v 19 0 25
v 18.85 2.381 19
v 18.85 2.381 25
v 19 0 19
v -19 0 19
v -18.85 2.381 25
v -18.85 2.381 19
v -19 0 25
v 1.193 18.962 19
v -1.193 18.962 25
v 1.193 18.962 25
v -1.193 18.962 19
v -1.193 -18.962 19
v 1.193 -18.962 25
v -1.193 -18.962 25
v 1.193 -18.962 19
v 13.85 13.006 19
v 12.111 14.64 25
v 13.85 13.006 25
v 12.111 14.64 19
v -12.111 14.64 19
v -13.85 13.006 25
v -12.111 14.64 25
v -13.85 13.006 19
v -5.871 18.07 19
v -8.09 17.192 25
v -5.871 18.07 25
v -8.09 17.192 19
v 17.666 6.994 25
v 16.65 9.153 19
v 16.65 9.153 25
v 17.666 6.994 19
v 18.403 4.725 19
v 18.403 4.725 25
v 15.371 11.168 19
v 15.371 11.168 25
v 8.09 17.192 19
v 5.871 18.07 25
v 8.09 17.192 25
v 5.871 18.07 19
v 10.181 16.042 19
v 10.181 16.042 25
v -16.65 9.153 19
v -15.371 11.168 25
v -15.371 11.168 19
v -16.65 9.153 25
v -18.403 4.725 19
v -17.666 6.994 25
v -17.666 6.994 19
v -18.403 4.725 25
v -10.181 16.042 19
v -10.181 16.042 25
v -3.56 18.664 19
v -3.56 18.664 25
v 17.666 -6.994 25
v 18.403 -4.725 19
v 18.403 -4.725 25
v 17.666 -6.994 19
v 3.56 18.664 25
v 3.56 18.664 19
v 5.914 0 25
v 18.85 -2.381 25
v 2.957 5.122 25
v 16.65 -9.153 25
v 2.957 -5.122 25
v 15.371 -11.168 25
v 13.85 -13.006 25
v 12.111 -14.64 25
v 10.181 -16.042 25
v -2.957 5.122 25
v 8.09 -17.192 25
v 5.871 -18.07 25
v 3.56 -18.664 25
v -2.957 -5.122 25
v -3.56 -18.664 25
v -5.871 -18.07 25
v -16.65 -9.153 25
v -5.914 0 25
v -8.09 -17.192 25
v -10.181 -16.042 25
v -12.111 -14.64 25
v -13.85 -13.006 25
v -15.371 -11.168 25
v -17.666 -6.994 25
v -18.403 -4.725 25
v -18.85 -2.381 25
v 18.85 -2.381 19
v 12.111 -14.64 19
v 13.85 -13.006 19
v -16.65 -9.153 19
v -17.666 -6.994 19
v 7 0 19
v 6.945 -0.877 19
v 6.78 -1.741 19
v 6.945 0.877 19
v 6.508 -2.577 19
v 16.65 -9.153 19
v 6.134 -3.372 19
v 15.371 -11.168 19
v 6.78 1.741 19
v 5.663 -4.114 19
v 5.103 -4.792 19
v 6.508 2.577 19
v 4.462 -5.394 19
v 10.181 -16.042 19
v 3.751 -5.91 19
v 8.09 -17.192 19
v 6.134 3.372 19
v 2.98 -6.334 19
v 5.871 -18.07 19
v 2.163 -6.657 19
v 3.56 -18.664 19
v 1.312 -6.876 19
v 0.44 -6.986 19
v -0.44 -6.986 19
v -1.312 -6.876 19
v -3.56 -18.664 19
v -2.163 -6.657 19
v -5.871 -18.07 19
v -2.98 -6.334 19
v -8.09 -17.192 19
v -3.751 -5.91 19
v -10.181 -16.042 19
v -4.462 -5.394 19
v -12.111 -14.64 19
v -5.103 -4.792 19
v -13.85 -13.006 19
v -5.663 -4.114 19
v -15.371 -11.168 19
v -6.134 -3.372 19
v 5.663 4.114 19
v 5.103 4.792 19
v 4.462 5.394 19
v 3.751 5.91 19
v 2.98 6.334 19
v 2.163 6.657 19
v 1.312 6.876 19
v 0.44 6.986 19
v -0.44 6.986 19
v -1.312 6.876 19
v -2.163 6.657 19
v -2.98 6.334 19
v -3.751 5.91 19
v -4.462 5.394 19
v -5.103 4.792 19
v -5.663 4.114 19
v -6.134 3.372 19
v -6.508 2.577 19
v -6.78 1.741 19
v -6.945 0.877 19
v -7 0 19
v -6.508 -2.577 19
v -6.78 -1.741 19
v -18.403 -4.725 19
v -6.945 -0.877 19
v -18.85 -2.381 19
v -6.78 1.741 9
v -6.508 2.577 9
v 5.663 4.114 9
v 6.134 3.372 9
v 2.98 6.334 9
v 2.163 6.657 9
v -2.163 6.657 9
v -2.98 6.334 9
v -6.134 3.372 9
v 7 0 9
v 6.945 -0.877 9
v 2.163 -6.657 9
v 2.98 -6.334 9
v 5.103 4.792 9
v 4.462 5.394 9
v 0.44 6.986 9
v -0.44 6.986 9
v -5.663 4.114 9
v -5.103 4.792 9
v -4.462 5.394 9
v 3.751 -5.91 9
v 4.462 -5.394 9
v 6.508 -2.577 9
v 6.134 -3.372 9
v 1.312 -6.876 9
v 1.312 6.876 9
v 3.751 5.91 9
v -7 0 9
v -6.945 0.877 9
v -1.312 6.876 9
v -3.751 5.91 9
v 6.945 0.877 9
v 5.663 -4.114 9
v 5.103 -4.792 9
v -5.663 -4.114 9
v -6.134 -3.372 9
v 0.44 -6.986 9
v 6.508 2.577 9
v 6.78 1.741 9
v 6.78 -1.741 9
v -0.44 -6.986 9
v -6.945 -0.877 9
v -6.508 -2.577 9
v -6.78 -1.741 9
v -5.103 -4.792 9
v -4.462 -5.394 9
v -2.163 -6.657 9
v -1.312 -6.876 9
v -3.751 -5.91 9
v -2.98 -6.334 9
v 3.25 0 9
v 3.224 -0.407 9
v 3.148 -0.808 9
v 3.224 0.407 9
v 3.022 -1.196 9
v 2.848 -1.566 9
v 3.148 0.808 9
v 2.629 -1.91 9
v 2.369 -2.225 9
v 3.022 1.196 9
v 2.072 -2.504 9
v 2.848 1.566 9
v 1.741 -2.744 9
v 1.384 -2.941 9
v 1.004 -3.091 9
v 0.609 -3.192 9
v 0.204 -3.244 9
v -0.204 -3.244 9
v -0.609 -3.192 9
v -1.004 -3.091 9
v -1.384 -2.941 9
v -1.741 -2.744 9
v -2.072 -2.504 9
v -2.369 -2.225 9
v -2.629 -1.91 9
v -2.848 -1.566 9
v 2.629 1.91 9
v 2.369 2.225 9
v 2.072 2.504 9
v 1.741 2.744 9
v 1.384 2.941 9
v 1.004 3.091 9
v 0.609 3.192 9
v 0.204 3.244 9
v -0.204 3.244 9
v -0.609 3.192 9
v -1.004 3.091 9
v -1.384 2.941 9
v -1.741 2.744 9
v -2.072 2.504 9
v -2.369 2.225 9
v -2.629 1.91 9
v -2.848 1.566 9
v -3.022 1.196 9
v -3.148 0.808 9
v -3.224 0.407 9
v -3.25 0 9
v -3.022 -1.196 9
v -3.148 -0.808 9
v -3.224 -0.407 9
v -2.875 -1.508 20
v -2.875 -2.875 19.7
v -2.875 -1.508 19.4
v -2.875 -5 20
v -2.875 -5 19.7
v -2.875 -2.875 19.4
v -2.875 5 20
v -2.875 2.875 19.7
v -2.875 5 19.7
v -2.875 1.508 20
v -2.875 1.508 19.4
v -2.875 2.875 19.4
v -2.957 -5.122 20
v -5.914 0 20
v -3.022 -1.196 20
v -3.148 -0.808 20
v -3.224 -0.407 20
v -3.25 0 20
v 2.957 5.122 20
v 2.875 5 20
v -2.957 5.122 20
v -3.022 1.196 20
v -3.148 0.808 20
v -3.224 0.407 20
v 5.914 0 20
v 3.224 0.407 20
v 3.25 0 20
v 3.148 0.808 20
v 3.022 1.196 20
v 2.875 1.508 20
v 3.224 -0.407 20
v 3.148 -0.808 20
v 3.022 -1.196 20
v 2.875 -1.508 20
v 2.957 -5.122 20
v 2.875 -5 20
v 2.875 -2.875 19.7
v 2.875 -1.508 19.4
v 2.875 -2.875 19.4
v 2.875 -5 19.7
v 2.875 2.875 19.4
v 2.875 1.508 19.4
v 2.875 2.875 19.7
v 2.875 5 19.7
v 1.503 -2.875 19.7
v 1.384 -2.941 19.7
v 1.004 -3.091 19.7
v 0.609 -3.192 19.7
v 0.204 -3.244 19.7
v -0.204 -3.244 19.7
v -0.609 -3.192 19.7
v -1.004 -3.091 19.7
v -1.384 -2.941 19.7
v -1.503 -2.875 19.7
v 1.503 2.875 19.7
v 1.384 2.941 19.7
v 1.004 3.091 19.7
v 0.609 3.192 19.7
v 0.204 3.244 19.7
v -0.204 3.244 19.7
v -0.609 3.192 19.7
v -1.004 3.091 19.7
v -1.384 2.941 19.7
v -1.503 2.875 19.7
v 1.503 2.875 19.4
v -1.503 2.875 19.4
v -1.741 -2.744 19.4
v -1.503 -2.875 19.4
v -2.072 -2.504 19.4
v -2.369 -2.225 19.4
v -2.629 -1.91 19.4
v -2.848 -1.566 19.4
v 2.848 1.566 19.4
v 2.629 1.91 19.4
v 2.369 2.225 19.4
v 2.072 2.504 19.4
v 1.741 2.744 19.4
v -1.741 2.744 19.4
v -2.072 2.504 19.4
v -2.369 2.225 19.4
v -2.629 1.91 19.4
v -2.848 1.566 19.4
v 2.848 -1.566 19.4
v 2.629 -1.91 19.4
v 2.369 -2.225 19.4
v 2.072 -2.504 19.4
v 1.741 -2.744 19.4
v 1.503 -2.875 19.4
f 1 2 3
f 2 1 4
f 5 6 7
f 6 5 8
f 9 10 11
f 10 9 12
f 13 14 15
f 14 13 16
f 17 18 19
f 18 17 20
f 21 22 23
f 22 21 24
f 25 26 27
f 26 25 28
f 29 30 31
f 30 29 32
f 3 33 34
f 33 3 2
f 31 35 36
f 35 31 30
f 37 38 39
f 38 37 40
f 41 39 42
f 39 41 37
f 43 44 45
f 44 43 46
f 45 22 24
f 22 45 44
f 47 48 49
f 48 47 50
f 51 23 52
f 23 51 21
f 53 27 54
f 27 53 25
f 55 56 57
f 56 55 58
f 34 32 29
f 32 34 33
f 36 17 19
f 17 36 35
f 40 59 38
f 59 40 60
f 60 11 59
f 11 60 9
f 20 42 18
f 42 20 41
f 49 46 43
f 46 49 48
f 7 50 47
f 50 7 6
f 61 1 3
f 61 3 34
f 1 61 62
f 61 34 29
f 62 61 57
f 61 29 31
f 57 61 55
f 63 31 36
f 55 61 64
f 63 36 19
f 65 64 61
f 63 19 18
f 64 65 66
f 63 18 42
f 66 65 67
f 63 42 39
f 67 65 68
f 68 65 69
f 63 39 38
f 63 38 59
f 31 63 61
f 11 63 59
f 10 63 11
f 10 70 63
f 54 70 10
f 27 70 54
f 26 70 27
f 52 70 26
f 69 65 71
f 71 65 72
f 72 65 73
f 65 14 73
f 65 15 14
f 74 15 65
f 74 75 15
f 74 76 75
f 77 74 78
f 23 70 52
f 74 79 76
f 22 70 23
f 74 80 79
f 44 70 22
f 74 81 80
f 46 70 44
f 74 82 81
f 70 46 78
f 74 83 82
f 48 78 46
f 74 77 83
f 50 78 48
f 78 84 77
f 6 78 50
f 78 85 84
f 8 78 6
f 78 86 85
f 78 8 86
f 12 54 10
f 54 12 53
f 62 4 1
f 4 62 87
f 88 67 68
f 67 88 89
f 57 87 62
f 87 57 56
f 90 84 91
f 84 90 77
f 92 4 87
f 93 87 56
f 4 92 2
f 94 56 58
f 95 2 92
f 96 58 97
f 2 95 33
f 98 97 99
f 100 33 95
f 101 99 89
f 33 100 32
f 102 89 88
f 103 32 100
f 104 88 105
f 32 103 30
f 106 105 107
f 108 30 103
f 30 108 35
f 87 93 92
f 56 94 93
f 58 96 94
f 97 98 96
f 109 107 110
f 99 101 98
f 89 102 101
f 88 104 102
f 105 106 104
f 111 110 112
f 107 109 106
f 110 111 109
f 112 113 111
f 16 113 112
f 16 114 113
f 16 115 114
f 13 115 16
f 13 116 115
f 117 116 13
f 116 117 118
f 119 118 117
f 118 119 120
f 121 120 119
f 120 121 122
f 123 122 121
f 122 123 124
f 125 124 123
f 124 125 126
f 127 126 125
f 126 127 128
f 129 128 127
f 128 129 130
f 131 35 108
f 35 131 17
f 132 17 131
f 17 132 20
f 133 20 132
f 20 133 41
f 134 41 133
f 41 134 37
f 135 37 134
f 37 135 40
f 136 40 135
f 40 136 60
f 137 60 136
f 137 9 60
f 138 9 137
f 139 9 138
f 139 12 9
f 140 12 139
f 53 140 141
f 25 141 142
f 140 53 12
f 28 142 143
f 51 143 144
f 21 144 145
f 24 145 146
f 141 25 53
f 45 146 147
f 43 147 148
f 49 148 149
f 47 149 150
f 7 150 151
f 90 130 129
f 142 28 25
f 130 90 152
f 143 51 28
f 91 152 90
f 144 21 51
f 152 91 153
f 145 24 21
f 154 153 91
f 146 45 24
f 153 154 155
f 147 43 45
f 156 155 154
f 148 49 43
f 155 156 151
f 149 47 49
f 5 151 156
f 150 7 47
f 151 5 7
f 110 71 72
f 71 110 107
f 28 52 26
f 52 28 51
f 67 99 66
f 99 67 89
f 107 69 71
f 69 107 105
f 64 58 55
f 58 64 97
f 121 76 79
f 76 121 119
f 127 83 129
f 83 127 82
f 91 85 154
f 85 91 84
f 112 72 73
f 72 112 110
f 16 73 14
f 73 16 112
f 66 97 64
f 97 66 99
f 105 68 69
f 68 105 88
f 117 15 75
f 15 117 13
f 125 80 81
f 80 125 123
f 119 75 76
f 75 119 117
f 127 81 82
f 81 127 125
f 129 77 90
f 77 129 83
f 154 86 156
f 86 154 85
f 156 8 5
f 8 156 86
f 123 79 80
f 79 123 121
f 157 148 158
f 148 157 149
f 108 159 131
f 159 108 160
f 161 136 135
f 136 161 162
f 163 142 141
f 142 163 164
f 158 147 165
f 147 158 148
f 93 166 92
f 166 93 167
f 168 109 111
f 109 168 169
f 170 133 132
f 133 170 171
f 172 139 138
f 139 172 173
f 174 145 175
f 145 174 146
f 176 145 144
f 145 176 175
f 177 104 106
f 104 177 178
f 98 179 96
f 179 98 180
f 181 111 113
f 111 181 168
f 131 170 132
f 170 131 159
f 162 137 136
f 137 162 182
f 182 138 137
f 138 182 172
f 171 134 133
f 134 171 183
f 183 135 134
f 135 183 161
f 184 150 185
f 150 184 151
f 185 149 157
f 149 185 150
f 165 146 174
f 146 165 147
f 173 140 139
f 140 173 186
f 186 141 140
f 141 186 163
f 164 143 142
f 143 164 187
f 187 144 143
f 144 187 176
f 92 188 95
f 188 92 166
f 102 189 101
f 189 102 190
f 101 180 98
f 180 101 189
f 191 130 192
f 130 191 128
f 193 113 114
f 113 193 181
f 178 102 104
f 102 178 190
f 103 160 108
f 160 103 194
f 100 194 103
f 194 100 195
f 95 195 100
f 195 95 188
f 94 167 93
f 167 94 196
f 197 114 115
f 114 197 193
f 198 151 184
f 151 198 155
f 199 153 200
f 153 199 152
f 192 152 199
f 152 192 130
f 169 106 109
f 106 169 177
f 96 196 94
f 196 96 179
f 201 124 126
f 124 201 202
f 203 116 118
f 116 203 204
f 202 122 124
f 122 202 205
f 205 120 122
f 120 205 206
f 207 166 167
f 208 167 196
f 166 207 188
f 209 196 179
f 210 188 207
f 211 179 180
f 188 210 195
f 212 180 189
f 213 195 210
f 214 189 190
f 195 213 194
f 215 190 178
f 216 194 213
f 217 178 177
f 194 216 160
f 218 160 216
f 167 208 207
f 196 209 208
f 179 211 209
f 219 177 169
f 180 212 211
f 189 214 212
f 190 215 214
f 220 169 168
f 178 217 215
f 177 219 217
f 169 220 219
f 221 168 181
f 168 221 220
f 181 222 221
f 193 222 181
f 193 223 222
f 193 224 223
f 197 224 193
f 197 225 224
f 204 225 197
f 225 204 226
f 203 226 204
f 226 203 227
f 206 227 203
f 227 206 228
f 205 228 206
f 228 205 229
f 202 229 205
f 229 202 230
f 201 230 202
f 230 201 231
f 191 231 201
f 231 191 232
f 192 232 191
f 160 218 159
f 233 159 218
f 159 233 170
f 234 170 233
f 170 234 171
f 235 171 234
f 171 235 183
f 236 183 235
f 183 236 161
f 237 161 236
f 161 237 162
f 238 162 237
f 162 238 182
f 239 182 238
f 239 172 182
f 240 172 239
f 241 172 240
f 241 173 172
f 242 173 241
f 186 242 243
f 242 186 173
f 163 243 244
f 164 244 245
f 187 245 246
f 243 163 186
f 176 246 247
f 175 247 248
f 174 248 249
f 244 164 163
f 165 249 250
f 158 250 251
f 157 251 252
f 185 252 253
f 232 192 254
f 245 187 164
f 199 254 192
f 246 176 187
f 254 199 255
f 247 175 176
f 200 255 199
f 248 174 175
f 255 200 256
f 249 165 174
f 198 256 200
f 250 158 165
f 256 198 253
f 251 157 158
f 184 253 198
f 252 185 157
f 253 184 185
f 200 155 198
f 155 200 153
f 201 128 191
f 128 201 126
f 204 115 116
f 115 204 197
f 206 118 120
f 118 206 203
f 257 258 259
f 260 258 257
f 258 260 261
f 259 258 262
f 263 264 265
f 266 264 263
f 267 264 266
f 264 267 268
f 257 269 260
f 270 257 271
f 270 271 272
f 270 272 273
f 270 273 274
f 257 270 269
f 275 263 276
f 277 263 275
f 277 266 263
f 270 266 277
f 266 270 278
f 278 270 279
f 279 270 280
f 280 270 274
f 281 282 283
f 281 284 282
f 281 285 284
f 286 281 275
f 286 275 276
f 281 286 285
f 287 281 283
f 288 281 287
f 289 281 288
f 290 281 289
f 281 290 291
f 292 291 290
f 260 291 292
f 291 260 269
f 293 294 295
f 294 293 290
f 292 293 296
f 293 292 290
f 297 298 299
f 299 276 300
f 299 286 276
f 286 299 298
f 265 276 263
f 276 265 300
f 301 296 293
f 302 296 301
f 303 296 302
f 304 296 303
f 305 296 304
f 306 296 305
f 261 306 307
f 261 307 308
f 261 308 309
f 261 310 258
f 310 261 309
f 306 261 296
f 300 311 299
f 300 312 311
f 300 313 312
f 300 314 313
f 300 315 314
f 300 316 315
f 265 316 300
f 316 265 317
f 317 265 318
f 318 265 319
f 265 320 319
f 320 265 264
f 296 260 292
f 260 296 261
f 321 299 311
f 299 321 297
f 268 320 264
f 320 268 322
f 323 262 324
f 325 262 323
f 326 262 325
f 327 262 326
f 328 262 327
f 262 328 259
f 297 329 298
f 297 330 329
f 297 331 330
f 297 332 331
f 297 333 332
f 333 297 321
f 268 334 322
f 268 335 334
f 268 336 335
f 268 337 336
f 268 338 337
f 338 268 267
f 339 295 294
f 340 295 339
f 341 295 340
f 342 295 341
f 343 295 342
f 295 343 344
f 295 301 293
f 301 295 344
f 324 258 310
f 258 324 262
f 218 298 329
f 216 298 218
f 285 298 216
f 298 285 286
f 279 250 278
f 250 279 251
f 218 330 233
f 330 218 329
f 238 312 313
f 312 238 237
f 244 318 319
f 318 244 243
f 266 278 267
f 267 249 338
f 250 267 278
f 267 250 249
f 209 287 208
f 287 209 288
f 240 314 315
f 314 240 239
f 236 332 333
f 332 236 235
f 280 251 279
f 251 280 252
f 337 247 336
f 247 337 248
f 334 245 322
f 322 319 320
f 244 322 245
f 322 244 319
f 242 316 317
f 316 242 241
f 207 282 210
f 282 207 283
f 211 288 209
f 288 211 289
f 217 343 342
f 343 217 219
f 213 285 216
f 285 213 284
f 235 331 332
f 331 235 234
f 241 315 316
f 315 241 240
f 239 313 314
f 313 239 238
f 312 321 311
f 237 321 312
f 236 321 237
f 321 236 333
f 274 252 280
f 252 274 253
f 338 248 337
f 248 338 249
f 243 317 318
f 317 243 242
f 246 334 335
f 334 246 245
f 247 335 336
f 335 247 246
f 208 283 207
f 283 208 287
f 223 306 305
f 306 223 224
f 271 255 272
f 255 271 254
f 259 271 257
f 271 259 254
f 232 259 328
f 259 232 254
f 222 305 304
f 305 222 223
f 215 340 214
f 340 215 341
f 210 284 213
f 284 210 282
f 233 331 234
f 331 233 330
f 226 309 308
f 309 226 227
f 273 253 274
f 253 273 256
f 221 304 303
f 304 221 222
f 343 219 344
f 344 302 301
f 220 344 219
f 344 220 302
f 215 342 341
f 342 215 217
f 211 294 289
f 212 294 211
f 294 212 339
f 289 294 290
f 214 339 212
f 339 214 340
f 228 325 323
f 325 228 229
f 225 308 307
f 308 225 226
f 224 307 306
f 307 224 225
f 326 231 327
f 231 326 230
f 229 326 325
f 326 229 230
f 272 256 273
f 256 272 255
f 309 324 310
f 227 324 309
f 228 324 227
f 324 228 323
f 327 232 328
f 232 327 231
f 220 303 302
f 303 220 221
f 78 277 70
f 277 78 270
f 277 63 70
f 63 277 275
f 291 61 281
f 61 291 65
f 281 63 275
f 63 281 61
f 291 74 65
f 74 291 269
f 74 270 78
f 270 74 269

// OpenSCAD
$fn = 50;


difference() {
	union() {
		translate(v = [0, 0, 19.0000000000]) {
			cylinder(h = 6, r = 19.0000000000);
		}
		translate(v = [0, 0, 9.0000000000]) {
			cylinder(h = 16, r = 7.0000000000);
		}
	}
	union() {
		translate(v = [0, 0, 25]) {
			rotate(a = [0, 0, 0]) {
				difference() {
					union() {
						#translate(v = [-2.8750000000, -5.0000000000, -5.3000000000]) {
							cube(size = [5.7500000000, 10, 0.3000000000]);
						}
						#translate(v = [-2.8750000000, -2.8750000000, -5.6000000000]) {
							cube(size = [5.7500000000, 5.7500000000, 0.3000000000]);
						}
						#translate(v = [-2.8750000000, -5.0000000000, 0]) {
							cube(size = [5.7500000000, 10, 0.3000000000]);
						}
						#translate(v = [-2.8750000000, -2.8750000000, 0.3000000000]) {
							cube(size = [5.7500000000, 5.7500000000, 0.3000000000]);
						}
						#translate(v = [0, 0, -100.0000000000]) {
							cylinder(h = 200, r = 3.2500000000);
						}
						translate(v = [0, 0, -5]) {
							#linear_extrude(height = 5) {
								polygon(points = [[5.9142500000, 0.0000000000], [2.9571250000, 5.1218907443], [-2.9571250000, 5.1218907443], [-5.9142500000, 0.0000000000], [-2.9571250000, -5.1218907443], [2.9571250000, -5.1218907443]]);
							}
						}
						#translate(v = [-2.8750000000, -5.0000000000, -5.3000000000]) {
							cube(size = [5.7500000000, 10, 0.3000000000]);
						}
						#translate(v = [-2.8750000000, -2.8750000000, -5.6000000000]) {
							cube(size = [5.7500000000, 5.7500000000, 0.3000000000]);
						}
						#translate(v = [-2.8750000000, -5.0000000000, 0]) {
							cube(size = [5.7500000000, 10, 0.3000000000]);
						}
						#translate(v = [-2.8750000000, -2.8750000000, 0.3000000000]) {
							cube(size = [5.7500000000, 5.7500000000, 0.3000000000]);
						}
						#translate(v = [0, 0, -100.0000000000]) {
							cylinder(h = 200, r = 3.2500000000);
						}
						#translate(v = [-2.8750000000, -5.0000000000, -5.3000000000]) {
							cube(size = [5.7500000000, 10, 0.3000000000]);
						}
						#translate(v = [-2.8750000000, -2.8750000000, -5.6000000000]) {
							cube(size = [5.7500000000, 5.7500000000, 0.3000000000]);
						}
						#translate(v = [-2.8750000000, -5.0000000000, 0]) {
							cube(size = [5.7500000000, 10, 0.3000000000]);
						}
						#translate(v = [-2.8750000000, -2.8750000000, 0.3000000000]) {
							cube(size = [5.7500000000, 5.7500000000, 0.3000000000]);
						}
						#translate(v = [0, 0, -100.0000000000]) {
							cylinder(h = 200, r = 3.2500000000);
						}
					}
					union();
				}
			}
		}
		#translate(v = [0, 0, -100.0000000000]) {
			cylinder(h = 200, r = 3.2500000000);
		}
	}
}
